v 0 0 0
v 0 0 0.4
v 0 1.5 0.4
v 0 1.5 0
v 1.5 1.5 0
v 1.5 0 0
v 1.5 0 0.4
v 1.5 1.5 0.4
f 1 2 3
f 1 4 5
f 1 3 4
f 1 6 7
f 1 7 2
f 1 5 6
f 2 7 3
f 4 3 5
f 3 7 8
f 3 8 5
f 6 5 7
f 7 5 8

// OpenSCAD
/* Warning, this is a very basic generator with a lot of approximation 
input data : [X2SON, 8XX, 1.5x1.5x0.40mm, 8, , A, C04-00338A]
generated by com.zoubworld.electronics.cad.model3d.Basic
Date : Sun Feb 15 10:50:48 CET 2026
*/

//body
color("black")
translate([0,0,0])
cube([1.5,1.5,0.4], center=false);
